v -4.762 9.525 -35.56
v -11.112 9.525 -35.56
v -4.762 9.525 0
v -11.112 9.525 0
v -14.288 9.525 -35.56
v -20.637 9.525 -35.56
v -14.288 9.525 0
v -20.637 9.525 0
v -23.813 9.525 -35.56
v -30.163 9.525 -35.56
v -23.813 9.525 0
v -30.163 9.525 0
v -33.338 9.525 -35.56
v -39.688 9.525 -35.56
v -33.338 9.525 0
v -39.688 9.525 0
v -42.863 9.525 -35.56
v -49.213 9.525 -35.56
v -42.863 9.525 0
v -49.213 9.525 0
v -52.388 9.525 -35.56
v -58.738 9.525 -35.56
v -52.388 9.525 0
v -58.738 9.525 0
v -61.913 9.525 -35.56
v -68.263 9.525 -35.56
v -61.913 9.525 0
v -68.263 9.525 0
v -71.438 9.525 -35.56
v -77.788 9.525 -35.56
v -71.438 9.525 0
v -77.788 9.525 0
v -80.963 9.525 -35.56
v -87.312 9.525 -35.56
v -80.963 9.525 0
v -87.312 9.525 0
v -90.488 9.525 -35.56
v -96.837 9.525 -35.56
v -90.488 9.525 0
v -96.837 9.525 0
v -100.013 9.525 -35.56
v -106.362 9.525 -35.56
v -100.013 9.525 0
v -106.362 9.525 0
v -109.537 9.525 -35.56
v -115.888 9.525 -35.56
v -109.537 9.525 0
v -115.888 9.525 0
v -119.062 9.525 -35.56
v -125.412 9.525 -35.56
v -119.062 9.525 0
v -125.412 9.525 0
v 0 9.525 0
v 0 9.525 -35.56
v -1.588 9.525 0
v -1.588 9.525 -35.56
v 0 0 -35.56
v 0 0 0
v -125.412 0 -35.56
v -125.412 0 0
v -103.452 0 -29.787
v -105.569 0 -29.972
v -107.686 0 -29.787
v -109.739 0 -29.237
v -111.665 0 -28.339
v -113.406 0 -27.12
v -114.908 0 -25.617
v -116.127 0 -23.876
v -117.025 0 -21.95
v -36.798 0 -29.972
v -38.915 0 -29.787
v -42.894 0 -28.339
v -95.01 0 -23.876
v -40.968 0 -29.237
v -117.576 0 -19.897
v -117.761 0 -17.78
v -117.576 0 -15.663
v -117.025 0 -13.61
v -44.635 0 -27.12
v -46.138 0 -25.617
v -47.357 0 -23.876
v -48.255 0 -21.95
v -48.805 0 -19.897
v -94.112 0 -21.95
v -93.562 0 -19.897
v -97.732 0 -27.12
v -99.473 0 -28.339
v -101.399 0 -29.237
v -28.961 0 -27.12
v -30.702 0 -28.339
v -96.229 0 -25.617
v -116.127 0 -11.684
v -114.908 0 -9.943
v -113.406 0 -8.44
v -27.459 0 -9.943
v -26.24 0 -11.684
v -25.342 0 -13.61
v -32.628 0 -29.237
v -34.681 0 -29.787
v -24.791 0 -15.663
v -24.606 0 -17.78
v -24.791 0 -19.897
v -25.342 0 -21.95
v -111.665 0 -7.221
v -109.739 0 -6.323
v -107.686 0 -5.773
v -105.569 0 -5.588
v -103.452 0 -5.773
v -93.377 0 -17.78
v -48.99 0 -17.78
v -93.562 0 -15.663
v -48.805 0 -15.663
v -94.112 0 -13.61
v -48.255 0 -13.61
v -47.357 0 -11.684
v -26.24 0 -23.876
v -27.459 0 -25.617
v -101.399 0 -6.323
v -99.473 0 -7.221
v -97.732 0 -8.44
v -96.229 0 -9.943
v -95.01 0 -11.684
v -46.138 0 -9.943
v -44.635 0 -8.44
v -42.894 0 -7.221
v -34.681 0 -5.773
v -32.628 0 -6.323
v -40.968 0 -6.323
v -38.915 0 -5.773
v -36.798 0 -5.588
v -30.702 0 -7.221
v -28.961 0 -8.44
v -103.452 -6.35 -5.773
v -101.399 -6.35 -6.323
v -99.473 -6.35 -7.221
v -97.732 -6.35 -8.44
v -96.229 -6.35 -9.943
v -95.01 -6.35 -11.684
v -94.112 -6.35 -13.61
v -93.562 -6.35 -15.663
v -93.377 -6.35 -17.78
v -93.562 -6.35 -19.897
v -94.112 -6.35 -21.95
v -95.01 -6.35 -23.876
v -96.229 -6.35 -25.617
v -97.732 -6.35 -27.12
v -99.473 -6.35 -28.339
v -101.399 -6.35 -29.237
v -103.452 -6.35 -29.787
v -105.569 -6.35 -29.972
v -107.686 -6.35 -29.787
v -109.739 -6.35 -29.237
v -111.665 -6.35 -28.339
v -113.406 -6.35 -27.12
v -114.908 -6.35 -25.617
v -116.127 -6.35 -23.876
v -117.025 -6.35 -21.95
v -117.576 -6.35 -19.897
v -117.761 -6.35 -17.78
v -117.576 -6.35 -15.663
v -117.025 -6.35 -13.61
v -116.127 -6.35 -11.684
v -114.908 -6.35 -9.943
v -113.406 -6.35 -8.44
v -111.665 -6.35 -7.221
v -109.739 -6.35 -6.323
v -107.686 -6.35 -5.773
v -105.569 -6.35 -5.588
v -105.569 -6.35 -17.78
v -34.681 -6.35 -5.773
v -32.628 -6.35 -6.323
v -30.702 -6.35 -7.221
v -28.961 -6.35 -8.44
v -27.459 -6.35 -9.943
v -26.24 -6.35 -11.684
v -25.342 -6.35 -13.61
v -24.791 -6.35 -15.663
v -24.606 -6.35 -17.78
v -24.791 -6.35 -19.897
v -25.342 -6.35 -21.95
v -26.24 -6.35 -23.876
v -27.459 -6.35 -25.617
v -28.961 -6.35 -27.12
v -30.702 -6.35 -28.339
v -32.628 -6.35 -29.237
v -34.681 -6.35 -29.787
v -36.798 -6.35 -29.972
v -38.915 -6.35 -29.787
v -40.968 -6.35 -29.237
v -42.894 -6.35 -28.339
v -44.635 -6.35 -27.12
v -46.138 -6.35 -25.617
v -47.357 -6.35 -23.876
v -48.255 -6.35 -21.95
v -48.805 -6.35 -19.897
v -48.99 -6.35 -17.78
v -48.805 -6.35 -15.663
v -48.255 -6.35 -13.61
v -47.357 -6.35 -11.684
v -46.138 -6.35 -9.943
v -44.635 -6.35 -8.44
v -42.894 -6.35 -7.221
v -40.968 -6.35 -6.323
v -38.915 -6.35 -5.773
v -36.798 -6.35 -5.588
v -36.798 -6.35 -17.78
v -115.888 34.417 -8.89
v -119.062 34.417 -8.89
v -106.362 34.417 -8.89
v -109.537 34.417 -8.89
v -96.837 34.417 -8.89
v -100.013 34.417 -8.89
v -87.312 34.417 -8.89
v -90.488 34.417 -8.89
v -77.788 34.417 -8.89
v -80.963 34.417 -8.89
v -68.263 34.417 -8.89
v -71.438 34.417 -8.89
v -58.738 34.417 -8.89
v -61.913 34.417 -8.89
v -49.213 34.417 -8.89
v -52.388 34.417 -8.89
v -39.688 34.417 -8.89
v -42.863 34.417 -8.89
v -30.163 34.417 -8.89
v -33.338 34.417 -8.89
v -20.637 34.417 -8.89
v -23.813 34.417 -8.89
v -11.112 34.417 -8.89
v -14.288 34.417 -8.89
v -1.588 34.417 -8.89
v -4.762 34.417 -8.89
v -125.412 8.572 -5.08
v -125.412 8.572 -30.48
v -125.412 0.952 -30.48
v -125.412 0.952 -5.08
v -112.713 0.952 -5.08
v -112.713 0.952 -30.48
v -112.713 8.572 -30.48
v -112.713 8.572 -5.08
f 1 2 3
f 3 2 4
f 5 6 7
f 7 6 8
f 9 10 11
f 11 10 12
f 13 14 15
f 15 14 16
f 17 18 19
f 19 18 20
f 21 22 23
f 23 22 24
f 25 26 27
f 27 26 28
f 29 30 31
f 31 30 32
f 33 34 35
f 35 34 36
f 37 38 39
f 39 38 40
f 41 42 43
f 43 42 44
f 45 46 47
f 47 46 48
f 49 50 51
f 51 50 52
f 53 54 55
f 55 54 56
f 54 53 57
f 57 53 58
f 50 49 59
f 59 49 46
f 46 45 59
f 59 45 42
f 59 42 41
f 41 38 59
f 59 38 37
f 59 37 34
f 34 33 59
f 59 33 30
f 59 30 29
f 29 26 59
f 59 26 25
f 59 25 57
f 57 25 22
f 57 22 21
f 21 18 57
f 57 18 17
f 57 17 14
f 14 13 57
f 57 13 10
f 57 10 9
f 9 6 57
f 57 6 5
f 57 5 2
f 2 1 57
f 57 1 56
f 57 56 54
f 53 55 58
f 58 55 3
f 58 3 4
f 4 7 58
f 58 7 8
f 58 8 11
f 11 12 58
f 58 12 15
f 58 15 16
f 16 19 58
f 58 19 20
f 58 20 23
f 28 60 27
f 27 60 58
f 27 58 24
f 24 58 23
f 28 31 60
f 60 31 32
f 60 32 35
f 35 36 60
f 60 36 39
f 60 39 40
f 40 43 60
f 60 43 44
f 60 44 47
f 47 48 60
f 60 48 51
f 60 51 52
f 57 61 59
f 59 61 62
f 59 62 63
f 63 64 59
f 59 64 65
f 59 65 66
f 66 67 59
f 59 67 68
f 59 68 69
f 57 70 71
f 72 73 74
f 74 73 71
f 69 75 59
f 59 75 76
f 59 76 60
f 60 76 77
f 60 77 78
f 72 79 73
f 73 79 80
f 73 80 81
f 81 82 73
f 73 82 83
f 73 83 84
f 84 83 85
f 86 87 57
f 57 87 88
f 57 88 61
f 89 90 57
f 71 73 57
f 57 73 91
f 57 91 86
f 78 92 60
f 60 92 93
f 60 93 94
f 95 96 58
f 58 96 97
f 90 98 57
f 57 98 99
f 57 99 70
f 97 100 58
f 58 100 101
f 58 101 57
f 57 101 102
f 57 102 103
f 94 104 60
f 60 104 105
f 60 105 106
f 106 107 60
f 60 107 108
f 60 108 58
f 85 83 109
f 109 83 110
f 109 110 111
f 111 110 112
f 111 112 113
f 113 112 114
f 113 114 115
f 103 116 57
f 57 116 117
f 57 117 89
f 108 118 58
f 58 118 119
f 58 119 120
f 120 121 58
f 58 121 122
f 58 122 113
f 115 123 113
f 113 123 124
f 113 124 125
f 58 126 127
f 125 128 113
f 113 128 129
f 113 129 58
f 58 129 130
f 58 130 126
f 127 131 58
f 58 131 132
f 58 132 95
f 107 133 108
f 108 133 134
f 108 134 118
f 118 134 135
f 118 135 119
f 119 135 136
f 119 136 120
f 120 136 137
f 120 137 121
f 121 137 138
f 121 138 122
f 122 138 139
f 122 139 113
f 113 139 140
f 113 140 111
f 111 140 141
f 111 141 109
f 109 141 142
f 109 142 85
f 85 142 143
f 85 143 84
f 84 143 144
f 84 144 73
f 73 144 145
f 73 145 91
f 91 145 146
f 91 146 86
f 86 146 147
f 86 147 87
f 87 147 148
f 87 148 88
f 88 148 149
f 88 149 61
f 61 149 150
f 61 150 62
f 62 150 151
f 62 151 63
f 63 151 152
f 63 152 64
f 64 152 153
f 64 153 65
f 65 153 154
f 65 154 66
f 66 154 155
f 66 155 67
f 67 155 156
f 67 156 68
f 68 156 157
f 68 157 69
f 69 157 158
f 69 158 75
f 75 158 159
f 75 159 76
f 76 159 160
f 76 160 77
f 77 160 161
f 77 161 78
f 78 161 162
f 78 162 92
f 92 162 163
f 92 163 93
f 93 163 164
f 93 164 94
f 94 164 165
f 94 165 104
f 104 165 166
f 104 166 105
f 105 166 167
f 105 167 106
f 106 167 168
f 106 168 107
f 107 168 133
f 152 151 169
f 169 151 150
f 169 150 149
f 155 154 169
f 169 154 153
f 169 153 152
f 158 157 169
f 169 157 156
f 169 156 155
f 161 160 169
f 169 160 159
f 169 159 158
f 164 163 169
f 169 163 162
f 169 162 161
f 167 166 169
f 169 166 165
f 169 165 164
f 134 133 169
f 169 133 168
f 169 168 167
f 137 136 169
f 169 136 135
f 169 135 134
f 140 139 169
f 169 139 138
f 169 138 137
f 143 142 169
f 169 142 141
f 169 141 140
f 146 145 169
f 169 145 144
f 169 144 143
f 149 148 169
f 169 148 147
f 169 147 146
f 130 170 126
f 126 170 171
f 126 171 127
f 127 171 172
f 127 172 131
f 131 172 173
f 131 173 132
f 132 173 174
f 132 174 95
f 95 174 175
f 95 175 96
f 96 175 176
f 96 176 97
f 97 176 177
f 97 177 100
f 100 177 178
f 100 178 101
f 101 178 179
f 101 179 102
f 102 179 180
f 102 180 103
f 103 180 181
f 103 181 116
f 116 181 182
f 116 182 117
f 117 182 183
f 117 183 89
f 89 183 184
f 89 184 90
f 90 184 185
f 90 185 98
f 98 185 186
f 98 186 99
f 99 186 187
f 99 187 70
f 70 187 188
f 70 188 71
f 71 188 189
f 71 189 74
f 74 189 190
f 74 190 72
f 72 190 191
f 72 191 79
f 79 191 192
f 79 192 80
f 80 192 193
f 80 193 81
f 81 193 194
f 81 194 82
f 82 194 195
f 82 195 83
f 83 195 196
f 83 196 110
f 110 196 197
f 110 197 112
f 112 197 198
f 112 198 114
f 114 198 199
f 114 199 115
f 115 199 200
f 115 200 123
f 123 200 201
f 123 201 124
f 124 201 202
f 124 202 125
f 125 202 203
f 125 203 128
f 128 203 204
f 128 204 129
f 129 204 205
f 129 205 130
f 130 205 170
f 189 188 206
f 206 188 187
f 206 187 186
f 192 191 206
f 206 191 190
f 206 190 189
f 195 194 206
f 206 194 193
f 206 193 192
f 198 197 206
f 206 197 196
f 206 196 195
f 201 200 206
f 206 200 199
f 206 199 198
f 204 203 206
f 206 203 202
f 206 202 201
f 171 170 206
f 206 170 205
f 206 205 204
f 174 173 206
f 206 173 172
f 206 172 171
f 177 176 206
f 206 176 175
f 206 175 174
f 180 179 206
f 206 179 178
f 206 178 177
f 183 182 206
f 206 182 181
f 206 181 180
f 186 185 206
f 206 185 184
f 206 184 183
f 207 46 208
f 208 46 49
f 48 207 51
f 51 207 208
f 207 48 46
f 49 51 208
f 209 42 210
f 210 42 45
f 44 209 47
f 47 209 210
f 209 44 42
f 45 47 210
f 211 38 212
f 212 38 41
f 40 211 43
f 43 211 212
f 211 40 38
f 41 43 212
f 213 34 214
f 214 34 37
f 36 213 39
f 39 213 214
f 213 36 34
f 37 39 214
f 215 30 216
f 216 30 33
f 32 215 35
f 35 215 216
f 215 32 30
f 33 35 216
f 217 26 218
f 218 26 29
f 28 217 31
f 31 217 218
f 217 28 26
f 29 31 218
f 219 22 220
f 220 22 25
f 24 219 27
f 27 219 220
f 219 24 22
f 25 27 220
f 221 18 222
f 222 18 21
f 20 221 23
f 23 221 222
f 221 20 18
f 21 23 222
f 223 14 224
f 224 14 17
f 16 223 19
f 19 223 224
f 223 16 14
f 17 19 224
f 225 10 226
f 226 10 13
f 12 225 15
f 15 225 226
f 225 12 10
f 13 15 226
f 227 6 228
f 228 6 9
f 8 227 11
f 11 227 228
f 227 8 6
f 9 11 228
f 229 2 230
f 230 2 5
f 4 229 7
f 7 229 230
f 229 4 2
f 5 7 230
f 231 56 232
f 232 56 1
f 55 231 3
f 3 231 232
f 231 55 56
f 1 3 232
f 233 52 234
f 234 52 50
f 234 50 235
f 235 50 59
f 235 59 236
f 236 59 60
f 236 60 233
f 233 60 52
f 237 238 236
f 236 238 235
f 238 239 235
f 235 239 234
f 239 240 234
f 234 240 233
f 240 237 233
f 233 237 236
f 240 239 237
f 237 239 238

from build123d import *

# Parameters (mm, degrees)
SKETCH1_W           = 211.1375
SKETCH1_H           = 35.56
BOSS_EXTRUDE1_DEPTH = 9.525
SKETCH6_R           = 12.192
BOSS_EXTRUDE4_DEPTH = 6.35
BOSS_EXTRUDE5_DEPTH = 3.175
LPATTERN1_COUNT     = 22
LPATTERN1_PITCH     = 9.525
SKETCH10_W          = 45.550099835
SKETCH10_H          = 62.093170918
CUT_EXTRUDE1_DEPTH  = 85.725
SKETCH11_W          = 25.4
SKETCH11_H          = 7.62
CUT_EXTRUDE2_DEPTH  = 12.7


with BuildPart() as part:
    # Sketch1 → Boss-Extrude1 (new body)
    with BuildSketch(Plane(origin=(0, 0, 0), x_dir=(1, 0, 0), z_dir=(0, 1, 0))):
        with Locations((-105.56875, 17.78)):
            Rectangle(SKETCH1_W, SKETCH1_H)
    extrude(amount=BOSS_EXTRUDE1_DEPTH)

    # Sketch6 → Boss-Extrude4 (add)
    with BuildSketch(Plane(origin=(0, 0, 0), x_dir=(-1, 0, 0), z_dir=(0, -1, 0))):
        with Locations((105.56875, 17.78)):
            Circle(SKETCH6_R)
        with Locations((36.79825, 17.78)):
            Circle(SKETCH6_R)
        with Locations((174.33925, 17.78)):
            Circle(SKETCH6_R)
    extrude(amount=BOSS_EXTRUDE4_DEPTH)

    # Sketch9 → Boss-Extrude5 (add)
    with BuildSketch(Plane.ZY.offset(204.7875)):
        Polygon((-35.56, 9.525), (0, 9.525), (-8.89, 34.417), align=None)
    boss_extrude5 = extrude(amount=-BOSS_EXTRUDE5_DEPTH)

    # LPattern1: Boss-Extrude5 ×22
    with Locations(*[(i * LPATTERN1_PITCH, 0, 0) for i in range(1, LPATTERN1_COUNT)]):
        add(boss_extrude5)

    # Sketch10 → Cut-Extrude1 (cut)
    with BuildSketch(Plane.ZY.offset(211.1375)):
        with Locations((-16.930184705, 4.77052578)):
            Rectangle(SKETCH10_W, SKETCH10_H)
    extrude(amount=-CUT_EXTRUDE1_DEPTH, mode=Mode.SUBTRACT)

    # Sketch11 → Cut-Extrude2 (cut)
    with BuildSketch(Plane.ZY.offset(125.4125)):
        with Locations((-17.78, 4.7625)):
            Rectangle(SKETCH11_W, SKETCH11_H)
    extrude(amount=-CUT_EXTRUDE2_DEPTH, mode=Mode.SUBTRACT)


solid = part.part
